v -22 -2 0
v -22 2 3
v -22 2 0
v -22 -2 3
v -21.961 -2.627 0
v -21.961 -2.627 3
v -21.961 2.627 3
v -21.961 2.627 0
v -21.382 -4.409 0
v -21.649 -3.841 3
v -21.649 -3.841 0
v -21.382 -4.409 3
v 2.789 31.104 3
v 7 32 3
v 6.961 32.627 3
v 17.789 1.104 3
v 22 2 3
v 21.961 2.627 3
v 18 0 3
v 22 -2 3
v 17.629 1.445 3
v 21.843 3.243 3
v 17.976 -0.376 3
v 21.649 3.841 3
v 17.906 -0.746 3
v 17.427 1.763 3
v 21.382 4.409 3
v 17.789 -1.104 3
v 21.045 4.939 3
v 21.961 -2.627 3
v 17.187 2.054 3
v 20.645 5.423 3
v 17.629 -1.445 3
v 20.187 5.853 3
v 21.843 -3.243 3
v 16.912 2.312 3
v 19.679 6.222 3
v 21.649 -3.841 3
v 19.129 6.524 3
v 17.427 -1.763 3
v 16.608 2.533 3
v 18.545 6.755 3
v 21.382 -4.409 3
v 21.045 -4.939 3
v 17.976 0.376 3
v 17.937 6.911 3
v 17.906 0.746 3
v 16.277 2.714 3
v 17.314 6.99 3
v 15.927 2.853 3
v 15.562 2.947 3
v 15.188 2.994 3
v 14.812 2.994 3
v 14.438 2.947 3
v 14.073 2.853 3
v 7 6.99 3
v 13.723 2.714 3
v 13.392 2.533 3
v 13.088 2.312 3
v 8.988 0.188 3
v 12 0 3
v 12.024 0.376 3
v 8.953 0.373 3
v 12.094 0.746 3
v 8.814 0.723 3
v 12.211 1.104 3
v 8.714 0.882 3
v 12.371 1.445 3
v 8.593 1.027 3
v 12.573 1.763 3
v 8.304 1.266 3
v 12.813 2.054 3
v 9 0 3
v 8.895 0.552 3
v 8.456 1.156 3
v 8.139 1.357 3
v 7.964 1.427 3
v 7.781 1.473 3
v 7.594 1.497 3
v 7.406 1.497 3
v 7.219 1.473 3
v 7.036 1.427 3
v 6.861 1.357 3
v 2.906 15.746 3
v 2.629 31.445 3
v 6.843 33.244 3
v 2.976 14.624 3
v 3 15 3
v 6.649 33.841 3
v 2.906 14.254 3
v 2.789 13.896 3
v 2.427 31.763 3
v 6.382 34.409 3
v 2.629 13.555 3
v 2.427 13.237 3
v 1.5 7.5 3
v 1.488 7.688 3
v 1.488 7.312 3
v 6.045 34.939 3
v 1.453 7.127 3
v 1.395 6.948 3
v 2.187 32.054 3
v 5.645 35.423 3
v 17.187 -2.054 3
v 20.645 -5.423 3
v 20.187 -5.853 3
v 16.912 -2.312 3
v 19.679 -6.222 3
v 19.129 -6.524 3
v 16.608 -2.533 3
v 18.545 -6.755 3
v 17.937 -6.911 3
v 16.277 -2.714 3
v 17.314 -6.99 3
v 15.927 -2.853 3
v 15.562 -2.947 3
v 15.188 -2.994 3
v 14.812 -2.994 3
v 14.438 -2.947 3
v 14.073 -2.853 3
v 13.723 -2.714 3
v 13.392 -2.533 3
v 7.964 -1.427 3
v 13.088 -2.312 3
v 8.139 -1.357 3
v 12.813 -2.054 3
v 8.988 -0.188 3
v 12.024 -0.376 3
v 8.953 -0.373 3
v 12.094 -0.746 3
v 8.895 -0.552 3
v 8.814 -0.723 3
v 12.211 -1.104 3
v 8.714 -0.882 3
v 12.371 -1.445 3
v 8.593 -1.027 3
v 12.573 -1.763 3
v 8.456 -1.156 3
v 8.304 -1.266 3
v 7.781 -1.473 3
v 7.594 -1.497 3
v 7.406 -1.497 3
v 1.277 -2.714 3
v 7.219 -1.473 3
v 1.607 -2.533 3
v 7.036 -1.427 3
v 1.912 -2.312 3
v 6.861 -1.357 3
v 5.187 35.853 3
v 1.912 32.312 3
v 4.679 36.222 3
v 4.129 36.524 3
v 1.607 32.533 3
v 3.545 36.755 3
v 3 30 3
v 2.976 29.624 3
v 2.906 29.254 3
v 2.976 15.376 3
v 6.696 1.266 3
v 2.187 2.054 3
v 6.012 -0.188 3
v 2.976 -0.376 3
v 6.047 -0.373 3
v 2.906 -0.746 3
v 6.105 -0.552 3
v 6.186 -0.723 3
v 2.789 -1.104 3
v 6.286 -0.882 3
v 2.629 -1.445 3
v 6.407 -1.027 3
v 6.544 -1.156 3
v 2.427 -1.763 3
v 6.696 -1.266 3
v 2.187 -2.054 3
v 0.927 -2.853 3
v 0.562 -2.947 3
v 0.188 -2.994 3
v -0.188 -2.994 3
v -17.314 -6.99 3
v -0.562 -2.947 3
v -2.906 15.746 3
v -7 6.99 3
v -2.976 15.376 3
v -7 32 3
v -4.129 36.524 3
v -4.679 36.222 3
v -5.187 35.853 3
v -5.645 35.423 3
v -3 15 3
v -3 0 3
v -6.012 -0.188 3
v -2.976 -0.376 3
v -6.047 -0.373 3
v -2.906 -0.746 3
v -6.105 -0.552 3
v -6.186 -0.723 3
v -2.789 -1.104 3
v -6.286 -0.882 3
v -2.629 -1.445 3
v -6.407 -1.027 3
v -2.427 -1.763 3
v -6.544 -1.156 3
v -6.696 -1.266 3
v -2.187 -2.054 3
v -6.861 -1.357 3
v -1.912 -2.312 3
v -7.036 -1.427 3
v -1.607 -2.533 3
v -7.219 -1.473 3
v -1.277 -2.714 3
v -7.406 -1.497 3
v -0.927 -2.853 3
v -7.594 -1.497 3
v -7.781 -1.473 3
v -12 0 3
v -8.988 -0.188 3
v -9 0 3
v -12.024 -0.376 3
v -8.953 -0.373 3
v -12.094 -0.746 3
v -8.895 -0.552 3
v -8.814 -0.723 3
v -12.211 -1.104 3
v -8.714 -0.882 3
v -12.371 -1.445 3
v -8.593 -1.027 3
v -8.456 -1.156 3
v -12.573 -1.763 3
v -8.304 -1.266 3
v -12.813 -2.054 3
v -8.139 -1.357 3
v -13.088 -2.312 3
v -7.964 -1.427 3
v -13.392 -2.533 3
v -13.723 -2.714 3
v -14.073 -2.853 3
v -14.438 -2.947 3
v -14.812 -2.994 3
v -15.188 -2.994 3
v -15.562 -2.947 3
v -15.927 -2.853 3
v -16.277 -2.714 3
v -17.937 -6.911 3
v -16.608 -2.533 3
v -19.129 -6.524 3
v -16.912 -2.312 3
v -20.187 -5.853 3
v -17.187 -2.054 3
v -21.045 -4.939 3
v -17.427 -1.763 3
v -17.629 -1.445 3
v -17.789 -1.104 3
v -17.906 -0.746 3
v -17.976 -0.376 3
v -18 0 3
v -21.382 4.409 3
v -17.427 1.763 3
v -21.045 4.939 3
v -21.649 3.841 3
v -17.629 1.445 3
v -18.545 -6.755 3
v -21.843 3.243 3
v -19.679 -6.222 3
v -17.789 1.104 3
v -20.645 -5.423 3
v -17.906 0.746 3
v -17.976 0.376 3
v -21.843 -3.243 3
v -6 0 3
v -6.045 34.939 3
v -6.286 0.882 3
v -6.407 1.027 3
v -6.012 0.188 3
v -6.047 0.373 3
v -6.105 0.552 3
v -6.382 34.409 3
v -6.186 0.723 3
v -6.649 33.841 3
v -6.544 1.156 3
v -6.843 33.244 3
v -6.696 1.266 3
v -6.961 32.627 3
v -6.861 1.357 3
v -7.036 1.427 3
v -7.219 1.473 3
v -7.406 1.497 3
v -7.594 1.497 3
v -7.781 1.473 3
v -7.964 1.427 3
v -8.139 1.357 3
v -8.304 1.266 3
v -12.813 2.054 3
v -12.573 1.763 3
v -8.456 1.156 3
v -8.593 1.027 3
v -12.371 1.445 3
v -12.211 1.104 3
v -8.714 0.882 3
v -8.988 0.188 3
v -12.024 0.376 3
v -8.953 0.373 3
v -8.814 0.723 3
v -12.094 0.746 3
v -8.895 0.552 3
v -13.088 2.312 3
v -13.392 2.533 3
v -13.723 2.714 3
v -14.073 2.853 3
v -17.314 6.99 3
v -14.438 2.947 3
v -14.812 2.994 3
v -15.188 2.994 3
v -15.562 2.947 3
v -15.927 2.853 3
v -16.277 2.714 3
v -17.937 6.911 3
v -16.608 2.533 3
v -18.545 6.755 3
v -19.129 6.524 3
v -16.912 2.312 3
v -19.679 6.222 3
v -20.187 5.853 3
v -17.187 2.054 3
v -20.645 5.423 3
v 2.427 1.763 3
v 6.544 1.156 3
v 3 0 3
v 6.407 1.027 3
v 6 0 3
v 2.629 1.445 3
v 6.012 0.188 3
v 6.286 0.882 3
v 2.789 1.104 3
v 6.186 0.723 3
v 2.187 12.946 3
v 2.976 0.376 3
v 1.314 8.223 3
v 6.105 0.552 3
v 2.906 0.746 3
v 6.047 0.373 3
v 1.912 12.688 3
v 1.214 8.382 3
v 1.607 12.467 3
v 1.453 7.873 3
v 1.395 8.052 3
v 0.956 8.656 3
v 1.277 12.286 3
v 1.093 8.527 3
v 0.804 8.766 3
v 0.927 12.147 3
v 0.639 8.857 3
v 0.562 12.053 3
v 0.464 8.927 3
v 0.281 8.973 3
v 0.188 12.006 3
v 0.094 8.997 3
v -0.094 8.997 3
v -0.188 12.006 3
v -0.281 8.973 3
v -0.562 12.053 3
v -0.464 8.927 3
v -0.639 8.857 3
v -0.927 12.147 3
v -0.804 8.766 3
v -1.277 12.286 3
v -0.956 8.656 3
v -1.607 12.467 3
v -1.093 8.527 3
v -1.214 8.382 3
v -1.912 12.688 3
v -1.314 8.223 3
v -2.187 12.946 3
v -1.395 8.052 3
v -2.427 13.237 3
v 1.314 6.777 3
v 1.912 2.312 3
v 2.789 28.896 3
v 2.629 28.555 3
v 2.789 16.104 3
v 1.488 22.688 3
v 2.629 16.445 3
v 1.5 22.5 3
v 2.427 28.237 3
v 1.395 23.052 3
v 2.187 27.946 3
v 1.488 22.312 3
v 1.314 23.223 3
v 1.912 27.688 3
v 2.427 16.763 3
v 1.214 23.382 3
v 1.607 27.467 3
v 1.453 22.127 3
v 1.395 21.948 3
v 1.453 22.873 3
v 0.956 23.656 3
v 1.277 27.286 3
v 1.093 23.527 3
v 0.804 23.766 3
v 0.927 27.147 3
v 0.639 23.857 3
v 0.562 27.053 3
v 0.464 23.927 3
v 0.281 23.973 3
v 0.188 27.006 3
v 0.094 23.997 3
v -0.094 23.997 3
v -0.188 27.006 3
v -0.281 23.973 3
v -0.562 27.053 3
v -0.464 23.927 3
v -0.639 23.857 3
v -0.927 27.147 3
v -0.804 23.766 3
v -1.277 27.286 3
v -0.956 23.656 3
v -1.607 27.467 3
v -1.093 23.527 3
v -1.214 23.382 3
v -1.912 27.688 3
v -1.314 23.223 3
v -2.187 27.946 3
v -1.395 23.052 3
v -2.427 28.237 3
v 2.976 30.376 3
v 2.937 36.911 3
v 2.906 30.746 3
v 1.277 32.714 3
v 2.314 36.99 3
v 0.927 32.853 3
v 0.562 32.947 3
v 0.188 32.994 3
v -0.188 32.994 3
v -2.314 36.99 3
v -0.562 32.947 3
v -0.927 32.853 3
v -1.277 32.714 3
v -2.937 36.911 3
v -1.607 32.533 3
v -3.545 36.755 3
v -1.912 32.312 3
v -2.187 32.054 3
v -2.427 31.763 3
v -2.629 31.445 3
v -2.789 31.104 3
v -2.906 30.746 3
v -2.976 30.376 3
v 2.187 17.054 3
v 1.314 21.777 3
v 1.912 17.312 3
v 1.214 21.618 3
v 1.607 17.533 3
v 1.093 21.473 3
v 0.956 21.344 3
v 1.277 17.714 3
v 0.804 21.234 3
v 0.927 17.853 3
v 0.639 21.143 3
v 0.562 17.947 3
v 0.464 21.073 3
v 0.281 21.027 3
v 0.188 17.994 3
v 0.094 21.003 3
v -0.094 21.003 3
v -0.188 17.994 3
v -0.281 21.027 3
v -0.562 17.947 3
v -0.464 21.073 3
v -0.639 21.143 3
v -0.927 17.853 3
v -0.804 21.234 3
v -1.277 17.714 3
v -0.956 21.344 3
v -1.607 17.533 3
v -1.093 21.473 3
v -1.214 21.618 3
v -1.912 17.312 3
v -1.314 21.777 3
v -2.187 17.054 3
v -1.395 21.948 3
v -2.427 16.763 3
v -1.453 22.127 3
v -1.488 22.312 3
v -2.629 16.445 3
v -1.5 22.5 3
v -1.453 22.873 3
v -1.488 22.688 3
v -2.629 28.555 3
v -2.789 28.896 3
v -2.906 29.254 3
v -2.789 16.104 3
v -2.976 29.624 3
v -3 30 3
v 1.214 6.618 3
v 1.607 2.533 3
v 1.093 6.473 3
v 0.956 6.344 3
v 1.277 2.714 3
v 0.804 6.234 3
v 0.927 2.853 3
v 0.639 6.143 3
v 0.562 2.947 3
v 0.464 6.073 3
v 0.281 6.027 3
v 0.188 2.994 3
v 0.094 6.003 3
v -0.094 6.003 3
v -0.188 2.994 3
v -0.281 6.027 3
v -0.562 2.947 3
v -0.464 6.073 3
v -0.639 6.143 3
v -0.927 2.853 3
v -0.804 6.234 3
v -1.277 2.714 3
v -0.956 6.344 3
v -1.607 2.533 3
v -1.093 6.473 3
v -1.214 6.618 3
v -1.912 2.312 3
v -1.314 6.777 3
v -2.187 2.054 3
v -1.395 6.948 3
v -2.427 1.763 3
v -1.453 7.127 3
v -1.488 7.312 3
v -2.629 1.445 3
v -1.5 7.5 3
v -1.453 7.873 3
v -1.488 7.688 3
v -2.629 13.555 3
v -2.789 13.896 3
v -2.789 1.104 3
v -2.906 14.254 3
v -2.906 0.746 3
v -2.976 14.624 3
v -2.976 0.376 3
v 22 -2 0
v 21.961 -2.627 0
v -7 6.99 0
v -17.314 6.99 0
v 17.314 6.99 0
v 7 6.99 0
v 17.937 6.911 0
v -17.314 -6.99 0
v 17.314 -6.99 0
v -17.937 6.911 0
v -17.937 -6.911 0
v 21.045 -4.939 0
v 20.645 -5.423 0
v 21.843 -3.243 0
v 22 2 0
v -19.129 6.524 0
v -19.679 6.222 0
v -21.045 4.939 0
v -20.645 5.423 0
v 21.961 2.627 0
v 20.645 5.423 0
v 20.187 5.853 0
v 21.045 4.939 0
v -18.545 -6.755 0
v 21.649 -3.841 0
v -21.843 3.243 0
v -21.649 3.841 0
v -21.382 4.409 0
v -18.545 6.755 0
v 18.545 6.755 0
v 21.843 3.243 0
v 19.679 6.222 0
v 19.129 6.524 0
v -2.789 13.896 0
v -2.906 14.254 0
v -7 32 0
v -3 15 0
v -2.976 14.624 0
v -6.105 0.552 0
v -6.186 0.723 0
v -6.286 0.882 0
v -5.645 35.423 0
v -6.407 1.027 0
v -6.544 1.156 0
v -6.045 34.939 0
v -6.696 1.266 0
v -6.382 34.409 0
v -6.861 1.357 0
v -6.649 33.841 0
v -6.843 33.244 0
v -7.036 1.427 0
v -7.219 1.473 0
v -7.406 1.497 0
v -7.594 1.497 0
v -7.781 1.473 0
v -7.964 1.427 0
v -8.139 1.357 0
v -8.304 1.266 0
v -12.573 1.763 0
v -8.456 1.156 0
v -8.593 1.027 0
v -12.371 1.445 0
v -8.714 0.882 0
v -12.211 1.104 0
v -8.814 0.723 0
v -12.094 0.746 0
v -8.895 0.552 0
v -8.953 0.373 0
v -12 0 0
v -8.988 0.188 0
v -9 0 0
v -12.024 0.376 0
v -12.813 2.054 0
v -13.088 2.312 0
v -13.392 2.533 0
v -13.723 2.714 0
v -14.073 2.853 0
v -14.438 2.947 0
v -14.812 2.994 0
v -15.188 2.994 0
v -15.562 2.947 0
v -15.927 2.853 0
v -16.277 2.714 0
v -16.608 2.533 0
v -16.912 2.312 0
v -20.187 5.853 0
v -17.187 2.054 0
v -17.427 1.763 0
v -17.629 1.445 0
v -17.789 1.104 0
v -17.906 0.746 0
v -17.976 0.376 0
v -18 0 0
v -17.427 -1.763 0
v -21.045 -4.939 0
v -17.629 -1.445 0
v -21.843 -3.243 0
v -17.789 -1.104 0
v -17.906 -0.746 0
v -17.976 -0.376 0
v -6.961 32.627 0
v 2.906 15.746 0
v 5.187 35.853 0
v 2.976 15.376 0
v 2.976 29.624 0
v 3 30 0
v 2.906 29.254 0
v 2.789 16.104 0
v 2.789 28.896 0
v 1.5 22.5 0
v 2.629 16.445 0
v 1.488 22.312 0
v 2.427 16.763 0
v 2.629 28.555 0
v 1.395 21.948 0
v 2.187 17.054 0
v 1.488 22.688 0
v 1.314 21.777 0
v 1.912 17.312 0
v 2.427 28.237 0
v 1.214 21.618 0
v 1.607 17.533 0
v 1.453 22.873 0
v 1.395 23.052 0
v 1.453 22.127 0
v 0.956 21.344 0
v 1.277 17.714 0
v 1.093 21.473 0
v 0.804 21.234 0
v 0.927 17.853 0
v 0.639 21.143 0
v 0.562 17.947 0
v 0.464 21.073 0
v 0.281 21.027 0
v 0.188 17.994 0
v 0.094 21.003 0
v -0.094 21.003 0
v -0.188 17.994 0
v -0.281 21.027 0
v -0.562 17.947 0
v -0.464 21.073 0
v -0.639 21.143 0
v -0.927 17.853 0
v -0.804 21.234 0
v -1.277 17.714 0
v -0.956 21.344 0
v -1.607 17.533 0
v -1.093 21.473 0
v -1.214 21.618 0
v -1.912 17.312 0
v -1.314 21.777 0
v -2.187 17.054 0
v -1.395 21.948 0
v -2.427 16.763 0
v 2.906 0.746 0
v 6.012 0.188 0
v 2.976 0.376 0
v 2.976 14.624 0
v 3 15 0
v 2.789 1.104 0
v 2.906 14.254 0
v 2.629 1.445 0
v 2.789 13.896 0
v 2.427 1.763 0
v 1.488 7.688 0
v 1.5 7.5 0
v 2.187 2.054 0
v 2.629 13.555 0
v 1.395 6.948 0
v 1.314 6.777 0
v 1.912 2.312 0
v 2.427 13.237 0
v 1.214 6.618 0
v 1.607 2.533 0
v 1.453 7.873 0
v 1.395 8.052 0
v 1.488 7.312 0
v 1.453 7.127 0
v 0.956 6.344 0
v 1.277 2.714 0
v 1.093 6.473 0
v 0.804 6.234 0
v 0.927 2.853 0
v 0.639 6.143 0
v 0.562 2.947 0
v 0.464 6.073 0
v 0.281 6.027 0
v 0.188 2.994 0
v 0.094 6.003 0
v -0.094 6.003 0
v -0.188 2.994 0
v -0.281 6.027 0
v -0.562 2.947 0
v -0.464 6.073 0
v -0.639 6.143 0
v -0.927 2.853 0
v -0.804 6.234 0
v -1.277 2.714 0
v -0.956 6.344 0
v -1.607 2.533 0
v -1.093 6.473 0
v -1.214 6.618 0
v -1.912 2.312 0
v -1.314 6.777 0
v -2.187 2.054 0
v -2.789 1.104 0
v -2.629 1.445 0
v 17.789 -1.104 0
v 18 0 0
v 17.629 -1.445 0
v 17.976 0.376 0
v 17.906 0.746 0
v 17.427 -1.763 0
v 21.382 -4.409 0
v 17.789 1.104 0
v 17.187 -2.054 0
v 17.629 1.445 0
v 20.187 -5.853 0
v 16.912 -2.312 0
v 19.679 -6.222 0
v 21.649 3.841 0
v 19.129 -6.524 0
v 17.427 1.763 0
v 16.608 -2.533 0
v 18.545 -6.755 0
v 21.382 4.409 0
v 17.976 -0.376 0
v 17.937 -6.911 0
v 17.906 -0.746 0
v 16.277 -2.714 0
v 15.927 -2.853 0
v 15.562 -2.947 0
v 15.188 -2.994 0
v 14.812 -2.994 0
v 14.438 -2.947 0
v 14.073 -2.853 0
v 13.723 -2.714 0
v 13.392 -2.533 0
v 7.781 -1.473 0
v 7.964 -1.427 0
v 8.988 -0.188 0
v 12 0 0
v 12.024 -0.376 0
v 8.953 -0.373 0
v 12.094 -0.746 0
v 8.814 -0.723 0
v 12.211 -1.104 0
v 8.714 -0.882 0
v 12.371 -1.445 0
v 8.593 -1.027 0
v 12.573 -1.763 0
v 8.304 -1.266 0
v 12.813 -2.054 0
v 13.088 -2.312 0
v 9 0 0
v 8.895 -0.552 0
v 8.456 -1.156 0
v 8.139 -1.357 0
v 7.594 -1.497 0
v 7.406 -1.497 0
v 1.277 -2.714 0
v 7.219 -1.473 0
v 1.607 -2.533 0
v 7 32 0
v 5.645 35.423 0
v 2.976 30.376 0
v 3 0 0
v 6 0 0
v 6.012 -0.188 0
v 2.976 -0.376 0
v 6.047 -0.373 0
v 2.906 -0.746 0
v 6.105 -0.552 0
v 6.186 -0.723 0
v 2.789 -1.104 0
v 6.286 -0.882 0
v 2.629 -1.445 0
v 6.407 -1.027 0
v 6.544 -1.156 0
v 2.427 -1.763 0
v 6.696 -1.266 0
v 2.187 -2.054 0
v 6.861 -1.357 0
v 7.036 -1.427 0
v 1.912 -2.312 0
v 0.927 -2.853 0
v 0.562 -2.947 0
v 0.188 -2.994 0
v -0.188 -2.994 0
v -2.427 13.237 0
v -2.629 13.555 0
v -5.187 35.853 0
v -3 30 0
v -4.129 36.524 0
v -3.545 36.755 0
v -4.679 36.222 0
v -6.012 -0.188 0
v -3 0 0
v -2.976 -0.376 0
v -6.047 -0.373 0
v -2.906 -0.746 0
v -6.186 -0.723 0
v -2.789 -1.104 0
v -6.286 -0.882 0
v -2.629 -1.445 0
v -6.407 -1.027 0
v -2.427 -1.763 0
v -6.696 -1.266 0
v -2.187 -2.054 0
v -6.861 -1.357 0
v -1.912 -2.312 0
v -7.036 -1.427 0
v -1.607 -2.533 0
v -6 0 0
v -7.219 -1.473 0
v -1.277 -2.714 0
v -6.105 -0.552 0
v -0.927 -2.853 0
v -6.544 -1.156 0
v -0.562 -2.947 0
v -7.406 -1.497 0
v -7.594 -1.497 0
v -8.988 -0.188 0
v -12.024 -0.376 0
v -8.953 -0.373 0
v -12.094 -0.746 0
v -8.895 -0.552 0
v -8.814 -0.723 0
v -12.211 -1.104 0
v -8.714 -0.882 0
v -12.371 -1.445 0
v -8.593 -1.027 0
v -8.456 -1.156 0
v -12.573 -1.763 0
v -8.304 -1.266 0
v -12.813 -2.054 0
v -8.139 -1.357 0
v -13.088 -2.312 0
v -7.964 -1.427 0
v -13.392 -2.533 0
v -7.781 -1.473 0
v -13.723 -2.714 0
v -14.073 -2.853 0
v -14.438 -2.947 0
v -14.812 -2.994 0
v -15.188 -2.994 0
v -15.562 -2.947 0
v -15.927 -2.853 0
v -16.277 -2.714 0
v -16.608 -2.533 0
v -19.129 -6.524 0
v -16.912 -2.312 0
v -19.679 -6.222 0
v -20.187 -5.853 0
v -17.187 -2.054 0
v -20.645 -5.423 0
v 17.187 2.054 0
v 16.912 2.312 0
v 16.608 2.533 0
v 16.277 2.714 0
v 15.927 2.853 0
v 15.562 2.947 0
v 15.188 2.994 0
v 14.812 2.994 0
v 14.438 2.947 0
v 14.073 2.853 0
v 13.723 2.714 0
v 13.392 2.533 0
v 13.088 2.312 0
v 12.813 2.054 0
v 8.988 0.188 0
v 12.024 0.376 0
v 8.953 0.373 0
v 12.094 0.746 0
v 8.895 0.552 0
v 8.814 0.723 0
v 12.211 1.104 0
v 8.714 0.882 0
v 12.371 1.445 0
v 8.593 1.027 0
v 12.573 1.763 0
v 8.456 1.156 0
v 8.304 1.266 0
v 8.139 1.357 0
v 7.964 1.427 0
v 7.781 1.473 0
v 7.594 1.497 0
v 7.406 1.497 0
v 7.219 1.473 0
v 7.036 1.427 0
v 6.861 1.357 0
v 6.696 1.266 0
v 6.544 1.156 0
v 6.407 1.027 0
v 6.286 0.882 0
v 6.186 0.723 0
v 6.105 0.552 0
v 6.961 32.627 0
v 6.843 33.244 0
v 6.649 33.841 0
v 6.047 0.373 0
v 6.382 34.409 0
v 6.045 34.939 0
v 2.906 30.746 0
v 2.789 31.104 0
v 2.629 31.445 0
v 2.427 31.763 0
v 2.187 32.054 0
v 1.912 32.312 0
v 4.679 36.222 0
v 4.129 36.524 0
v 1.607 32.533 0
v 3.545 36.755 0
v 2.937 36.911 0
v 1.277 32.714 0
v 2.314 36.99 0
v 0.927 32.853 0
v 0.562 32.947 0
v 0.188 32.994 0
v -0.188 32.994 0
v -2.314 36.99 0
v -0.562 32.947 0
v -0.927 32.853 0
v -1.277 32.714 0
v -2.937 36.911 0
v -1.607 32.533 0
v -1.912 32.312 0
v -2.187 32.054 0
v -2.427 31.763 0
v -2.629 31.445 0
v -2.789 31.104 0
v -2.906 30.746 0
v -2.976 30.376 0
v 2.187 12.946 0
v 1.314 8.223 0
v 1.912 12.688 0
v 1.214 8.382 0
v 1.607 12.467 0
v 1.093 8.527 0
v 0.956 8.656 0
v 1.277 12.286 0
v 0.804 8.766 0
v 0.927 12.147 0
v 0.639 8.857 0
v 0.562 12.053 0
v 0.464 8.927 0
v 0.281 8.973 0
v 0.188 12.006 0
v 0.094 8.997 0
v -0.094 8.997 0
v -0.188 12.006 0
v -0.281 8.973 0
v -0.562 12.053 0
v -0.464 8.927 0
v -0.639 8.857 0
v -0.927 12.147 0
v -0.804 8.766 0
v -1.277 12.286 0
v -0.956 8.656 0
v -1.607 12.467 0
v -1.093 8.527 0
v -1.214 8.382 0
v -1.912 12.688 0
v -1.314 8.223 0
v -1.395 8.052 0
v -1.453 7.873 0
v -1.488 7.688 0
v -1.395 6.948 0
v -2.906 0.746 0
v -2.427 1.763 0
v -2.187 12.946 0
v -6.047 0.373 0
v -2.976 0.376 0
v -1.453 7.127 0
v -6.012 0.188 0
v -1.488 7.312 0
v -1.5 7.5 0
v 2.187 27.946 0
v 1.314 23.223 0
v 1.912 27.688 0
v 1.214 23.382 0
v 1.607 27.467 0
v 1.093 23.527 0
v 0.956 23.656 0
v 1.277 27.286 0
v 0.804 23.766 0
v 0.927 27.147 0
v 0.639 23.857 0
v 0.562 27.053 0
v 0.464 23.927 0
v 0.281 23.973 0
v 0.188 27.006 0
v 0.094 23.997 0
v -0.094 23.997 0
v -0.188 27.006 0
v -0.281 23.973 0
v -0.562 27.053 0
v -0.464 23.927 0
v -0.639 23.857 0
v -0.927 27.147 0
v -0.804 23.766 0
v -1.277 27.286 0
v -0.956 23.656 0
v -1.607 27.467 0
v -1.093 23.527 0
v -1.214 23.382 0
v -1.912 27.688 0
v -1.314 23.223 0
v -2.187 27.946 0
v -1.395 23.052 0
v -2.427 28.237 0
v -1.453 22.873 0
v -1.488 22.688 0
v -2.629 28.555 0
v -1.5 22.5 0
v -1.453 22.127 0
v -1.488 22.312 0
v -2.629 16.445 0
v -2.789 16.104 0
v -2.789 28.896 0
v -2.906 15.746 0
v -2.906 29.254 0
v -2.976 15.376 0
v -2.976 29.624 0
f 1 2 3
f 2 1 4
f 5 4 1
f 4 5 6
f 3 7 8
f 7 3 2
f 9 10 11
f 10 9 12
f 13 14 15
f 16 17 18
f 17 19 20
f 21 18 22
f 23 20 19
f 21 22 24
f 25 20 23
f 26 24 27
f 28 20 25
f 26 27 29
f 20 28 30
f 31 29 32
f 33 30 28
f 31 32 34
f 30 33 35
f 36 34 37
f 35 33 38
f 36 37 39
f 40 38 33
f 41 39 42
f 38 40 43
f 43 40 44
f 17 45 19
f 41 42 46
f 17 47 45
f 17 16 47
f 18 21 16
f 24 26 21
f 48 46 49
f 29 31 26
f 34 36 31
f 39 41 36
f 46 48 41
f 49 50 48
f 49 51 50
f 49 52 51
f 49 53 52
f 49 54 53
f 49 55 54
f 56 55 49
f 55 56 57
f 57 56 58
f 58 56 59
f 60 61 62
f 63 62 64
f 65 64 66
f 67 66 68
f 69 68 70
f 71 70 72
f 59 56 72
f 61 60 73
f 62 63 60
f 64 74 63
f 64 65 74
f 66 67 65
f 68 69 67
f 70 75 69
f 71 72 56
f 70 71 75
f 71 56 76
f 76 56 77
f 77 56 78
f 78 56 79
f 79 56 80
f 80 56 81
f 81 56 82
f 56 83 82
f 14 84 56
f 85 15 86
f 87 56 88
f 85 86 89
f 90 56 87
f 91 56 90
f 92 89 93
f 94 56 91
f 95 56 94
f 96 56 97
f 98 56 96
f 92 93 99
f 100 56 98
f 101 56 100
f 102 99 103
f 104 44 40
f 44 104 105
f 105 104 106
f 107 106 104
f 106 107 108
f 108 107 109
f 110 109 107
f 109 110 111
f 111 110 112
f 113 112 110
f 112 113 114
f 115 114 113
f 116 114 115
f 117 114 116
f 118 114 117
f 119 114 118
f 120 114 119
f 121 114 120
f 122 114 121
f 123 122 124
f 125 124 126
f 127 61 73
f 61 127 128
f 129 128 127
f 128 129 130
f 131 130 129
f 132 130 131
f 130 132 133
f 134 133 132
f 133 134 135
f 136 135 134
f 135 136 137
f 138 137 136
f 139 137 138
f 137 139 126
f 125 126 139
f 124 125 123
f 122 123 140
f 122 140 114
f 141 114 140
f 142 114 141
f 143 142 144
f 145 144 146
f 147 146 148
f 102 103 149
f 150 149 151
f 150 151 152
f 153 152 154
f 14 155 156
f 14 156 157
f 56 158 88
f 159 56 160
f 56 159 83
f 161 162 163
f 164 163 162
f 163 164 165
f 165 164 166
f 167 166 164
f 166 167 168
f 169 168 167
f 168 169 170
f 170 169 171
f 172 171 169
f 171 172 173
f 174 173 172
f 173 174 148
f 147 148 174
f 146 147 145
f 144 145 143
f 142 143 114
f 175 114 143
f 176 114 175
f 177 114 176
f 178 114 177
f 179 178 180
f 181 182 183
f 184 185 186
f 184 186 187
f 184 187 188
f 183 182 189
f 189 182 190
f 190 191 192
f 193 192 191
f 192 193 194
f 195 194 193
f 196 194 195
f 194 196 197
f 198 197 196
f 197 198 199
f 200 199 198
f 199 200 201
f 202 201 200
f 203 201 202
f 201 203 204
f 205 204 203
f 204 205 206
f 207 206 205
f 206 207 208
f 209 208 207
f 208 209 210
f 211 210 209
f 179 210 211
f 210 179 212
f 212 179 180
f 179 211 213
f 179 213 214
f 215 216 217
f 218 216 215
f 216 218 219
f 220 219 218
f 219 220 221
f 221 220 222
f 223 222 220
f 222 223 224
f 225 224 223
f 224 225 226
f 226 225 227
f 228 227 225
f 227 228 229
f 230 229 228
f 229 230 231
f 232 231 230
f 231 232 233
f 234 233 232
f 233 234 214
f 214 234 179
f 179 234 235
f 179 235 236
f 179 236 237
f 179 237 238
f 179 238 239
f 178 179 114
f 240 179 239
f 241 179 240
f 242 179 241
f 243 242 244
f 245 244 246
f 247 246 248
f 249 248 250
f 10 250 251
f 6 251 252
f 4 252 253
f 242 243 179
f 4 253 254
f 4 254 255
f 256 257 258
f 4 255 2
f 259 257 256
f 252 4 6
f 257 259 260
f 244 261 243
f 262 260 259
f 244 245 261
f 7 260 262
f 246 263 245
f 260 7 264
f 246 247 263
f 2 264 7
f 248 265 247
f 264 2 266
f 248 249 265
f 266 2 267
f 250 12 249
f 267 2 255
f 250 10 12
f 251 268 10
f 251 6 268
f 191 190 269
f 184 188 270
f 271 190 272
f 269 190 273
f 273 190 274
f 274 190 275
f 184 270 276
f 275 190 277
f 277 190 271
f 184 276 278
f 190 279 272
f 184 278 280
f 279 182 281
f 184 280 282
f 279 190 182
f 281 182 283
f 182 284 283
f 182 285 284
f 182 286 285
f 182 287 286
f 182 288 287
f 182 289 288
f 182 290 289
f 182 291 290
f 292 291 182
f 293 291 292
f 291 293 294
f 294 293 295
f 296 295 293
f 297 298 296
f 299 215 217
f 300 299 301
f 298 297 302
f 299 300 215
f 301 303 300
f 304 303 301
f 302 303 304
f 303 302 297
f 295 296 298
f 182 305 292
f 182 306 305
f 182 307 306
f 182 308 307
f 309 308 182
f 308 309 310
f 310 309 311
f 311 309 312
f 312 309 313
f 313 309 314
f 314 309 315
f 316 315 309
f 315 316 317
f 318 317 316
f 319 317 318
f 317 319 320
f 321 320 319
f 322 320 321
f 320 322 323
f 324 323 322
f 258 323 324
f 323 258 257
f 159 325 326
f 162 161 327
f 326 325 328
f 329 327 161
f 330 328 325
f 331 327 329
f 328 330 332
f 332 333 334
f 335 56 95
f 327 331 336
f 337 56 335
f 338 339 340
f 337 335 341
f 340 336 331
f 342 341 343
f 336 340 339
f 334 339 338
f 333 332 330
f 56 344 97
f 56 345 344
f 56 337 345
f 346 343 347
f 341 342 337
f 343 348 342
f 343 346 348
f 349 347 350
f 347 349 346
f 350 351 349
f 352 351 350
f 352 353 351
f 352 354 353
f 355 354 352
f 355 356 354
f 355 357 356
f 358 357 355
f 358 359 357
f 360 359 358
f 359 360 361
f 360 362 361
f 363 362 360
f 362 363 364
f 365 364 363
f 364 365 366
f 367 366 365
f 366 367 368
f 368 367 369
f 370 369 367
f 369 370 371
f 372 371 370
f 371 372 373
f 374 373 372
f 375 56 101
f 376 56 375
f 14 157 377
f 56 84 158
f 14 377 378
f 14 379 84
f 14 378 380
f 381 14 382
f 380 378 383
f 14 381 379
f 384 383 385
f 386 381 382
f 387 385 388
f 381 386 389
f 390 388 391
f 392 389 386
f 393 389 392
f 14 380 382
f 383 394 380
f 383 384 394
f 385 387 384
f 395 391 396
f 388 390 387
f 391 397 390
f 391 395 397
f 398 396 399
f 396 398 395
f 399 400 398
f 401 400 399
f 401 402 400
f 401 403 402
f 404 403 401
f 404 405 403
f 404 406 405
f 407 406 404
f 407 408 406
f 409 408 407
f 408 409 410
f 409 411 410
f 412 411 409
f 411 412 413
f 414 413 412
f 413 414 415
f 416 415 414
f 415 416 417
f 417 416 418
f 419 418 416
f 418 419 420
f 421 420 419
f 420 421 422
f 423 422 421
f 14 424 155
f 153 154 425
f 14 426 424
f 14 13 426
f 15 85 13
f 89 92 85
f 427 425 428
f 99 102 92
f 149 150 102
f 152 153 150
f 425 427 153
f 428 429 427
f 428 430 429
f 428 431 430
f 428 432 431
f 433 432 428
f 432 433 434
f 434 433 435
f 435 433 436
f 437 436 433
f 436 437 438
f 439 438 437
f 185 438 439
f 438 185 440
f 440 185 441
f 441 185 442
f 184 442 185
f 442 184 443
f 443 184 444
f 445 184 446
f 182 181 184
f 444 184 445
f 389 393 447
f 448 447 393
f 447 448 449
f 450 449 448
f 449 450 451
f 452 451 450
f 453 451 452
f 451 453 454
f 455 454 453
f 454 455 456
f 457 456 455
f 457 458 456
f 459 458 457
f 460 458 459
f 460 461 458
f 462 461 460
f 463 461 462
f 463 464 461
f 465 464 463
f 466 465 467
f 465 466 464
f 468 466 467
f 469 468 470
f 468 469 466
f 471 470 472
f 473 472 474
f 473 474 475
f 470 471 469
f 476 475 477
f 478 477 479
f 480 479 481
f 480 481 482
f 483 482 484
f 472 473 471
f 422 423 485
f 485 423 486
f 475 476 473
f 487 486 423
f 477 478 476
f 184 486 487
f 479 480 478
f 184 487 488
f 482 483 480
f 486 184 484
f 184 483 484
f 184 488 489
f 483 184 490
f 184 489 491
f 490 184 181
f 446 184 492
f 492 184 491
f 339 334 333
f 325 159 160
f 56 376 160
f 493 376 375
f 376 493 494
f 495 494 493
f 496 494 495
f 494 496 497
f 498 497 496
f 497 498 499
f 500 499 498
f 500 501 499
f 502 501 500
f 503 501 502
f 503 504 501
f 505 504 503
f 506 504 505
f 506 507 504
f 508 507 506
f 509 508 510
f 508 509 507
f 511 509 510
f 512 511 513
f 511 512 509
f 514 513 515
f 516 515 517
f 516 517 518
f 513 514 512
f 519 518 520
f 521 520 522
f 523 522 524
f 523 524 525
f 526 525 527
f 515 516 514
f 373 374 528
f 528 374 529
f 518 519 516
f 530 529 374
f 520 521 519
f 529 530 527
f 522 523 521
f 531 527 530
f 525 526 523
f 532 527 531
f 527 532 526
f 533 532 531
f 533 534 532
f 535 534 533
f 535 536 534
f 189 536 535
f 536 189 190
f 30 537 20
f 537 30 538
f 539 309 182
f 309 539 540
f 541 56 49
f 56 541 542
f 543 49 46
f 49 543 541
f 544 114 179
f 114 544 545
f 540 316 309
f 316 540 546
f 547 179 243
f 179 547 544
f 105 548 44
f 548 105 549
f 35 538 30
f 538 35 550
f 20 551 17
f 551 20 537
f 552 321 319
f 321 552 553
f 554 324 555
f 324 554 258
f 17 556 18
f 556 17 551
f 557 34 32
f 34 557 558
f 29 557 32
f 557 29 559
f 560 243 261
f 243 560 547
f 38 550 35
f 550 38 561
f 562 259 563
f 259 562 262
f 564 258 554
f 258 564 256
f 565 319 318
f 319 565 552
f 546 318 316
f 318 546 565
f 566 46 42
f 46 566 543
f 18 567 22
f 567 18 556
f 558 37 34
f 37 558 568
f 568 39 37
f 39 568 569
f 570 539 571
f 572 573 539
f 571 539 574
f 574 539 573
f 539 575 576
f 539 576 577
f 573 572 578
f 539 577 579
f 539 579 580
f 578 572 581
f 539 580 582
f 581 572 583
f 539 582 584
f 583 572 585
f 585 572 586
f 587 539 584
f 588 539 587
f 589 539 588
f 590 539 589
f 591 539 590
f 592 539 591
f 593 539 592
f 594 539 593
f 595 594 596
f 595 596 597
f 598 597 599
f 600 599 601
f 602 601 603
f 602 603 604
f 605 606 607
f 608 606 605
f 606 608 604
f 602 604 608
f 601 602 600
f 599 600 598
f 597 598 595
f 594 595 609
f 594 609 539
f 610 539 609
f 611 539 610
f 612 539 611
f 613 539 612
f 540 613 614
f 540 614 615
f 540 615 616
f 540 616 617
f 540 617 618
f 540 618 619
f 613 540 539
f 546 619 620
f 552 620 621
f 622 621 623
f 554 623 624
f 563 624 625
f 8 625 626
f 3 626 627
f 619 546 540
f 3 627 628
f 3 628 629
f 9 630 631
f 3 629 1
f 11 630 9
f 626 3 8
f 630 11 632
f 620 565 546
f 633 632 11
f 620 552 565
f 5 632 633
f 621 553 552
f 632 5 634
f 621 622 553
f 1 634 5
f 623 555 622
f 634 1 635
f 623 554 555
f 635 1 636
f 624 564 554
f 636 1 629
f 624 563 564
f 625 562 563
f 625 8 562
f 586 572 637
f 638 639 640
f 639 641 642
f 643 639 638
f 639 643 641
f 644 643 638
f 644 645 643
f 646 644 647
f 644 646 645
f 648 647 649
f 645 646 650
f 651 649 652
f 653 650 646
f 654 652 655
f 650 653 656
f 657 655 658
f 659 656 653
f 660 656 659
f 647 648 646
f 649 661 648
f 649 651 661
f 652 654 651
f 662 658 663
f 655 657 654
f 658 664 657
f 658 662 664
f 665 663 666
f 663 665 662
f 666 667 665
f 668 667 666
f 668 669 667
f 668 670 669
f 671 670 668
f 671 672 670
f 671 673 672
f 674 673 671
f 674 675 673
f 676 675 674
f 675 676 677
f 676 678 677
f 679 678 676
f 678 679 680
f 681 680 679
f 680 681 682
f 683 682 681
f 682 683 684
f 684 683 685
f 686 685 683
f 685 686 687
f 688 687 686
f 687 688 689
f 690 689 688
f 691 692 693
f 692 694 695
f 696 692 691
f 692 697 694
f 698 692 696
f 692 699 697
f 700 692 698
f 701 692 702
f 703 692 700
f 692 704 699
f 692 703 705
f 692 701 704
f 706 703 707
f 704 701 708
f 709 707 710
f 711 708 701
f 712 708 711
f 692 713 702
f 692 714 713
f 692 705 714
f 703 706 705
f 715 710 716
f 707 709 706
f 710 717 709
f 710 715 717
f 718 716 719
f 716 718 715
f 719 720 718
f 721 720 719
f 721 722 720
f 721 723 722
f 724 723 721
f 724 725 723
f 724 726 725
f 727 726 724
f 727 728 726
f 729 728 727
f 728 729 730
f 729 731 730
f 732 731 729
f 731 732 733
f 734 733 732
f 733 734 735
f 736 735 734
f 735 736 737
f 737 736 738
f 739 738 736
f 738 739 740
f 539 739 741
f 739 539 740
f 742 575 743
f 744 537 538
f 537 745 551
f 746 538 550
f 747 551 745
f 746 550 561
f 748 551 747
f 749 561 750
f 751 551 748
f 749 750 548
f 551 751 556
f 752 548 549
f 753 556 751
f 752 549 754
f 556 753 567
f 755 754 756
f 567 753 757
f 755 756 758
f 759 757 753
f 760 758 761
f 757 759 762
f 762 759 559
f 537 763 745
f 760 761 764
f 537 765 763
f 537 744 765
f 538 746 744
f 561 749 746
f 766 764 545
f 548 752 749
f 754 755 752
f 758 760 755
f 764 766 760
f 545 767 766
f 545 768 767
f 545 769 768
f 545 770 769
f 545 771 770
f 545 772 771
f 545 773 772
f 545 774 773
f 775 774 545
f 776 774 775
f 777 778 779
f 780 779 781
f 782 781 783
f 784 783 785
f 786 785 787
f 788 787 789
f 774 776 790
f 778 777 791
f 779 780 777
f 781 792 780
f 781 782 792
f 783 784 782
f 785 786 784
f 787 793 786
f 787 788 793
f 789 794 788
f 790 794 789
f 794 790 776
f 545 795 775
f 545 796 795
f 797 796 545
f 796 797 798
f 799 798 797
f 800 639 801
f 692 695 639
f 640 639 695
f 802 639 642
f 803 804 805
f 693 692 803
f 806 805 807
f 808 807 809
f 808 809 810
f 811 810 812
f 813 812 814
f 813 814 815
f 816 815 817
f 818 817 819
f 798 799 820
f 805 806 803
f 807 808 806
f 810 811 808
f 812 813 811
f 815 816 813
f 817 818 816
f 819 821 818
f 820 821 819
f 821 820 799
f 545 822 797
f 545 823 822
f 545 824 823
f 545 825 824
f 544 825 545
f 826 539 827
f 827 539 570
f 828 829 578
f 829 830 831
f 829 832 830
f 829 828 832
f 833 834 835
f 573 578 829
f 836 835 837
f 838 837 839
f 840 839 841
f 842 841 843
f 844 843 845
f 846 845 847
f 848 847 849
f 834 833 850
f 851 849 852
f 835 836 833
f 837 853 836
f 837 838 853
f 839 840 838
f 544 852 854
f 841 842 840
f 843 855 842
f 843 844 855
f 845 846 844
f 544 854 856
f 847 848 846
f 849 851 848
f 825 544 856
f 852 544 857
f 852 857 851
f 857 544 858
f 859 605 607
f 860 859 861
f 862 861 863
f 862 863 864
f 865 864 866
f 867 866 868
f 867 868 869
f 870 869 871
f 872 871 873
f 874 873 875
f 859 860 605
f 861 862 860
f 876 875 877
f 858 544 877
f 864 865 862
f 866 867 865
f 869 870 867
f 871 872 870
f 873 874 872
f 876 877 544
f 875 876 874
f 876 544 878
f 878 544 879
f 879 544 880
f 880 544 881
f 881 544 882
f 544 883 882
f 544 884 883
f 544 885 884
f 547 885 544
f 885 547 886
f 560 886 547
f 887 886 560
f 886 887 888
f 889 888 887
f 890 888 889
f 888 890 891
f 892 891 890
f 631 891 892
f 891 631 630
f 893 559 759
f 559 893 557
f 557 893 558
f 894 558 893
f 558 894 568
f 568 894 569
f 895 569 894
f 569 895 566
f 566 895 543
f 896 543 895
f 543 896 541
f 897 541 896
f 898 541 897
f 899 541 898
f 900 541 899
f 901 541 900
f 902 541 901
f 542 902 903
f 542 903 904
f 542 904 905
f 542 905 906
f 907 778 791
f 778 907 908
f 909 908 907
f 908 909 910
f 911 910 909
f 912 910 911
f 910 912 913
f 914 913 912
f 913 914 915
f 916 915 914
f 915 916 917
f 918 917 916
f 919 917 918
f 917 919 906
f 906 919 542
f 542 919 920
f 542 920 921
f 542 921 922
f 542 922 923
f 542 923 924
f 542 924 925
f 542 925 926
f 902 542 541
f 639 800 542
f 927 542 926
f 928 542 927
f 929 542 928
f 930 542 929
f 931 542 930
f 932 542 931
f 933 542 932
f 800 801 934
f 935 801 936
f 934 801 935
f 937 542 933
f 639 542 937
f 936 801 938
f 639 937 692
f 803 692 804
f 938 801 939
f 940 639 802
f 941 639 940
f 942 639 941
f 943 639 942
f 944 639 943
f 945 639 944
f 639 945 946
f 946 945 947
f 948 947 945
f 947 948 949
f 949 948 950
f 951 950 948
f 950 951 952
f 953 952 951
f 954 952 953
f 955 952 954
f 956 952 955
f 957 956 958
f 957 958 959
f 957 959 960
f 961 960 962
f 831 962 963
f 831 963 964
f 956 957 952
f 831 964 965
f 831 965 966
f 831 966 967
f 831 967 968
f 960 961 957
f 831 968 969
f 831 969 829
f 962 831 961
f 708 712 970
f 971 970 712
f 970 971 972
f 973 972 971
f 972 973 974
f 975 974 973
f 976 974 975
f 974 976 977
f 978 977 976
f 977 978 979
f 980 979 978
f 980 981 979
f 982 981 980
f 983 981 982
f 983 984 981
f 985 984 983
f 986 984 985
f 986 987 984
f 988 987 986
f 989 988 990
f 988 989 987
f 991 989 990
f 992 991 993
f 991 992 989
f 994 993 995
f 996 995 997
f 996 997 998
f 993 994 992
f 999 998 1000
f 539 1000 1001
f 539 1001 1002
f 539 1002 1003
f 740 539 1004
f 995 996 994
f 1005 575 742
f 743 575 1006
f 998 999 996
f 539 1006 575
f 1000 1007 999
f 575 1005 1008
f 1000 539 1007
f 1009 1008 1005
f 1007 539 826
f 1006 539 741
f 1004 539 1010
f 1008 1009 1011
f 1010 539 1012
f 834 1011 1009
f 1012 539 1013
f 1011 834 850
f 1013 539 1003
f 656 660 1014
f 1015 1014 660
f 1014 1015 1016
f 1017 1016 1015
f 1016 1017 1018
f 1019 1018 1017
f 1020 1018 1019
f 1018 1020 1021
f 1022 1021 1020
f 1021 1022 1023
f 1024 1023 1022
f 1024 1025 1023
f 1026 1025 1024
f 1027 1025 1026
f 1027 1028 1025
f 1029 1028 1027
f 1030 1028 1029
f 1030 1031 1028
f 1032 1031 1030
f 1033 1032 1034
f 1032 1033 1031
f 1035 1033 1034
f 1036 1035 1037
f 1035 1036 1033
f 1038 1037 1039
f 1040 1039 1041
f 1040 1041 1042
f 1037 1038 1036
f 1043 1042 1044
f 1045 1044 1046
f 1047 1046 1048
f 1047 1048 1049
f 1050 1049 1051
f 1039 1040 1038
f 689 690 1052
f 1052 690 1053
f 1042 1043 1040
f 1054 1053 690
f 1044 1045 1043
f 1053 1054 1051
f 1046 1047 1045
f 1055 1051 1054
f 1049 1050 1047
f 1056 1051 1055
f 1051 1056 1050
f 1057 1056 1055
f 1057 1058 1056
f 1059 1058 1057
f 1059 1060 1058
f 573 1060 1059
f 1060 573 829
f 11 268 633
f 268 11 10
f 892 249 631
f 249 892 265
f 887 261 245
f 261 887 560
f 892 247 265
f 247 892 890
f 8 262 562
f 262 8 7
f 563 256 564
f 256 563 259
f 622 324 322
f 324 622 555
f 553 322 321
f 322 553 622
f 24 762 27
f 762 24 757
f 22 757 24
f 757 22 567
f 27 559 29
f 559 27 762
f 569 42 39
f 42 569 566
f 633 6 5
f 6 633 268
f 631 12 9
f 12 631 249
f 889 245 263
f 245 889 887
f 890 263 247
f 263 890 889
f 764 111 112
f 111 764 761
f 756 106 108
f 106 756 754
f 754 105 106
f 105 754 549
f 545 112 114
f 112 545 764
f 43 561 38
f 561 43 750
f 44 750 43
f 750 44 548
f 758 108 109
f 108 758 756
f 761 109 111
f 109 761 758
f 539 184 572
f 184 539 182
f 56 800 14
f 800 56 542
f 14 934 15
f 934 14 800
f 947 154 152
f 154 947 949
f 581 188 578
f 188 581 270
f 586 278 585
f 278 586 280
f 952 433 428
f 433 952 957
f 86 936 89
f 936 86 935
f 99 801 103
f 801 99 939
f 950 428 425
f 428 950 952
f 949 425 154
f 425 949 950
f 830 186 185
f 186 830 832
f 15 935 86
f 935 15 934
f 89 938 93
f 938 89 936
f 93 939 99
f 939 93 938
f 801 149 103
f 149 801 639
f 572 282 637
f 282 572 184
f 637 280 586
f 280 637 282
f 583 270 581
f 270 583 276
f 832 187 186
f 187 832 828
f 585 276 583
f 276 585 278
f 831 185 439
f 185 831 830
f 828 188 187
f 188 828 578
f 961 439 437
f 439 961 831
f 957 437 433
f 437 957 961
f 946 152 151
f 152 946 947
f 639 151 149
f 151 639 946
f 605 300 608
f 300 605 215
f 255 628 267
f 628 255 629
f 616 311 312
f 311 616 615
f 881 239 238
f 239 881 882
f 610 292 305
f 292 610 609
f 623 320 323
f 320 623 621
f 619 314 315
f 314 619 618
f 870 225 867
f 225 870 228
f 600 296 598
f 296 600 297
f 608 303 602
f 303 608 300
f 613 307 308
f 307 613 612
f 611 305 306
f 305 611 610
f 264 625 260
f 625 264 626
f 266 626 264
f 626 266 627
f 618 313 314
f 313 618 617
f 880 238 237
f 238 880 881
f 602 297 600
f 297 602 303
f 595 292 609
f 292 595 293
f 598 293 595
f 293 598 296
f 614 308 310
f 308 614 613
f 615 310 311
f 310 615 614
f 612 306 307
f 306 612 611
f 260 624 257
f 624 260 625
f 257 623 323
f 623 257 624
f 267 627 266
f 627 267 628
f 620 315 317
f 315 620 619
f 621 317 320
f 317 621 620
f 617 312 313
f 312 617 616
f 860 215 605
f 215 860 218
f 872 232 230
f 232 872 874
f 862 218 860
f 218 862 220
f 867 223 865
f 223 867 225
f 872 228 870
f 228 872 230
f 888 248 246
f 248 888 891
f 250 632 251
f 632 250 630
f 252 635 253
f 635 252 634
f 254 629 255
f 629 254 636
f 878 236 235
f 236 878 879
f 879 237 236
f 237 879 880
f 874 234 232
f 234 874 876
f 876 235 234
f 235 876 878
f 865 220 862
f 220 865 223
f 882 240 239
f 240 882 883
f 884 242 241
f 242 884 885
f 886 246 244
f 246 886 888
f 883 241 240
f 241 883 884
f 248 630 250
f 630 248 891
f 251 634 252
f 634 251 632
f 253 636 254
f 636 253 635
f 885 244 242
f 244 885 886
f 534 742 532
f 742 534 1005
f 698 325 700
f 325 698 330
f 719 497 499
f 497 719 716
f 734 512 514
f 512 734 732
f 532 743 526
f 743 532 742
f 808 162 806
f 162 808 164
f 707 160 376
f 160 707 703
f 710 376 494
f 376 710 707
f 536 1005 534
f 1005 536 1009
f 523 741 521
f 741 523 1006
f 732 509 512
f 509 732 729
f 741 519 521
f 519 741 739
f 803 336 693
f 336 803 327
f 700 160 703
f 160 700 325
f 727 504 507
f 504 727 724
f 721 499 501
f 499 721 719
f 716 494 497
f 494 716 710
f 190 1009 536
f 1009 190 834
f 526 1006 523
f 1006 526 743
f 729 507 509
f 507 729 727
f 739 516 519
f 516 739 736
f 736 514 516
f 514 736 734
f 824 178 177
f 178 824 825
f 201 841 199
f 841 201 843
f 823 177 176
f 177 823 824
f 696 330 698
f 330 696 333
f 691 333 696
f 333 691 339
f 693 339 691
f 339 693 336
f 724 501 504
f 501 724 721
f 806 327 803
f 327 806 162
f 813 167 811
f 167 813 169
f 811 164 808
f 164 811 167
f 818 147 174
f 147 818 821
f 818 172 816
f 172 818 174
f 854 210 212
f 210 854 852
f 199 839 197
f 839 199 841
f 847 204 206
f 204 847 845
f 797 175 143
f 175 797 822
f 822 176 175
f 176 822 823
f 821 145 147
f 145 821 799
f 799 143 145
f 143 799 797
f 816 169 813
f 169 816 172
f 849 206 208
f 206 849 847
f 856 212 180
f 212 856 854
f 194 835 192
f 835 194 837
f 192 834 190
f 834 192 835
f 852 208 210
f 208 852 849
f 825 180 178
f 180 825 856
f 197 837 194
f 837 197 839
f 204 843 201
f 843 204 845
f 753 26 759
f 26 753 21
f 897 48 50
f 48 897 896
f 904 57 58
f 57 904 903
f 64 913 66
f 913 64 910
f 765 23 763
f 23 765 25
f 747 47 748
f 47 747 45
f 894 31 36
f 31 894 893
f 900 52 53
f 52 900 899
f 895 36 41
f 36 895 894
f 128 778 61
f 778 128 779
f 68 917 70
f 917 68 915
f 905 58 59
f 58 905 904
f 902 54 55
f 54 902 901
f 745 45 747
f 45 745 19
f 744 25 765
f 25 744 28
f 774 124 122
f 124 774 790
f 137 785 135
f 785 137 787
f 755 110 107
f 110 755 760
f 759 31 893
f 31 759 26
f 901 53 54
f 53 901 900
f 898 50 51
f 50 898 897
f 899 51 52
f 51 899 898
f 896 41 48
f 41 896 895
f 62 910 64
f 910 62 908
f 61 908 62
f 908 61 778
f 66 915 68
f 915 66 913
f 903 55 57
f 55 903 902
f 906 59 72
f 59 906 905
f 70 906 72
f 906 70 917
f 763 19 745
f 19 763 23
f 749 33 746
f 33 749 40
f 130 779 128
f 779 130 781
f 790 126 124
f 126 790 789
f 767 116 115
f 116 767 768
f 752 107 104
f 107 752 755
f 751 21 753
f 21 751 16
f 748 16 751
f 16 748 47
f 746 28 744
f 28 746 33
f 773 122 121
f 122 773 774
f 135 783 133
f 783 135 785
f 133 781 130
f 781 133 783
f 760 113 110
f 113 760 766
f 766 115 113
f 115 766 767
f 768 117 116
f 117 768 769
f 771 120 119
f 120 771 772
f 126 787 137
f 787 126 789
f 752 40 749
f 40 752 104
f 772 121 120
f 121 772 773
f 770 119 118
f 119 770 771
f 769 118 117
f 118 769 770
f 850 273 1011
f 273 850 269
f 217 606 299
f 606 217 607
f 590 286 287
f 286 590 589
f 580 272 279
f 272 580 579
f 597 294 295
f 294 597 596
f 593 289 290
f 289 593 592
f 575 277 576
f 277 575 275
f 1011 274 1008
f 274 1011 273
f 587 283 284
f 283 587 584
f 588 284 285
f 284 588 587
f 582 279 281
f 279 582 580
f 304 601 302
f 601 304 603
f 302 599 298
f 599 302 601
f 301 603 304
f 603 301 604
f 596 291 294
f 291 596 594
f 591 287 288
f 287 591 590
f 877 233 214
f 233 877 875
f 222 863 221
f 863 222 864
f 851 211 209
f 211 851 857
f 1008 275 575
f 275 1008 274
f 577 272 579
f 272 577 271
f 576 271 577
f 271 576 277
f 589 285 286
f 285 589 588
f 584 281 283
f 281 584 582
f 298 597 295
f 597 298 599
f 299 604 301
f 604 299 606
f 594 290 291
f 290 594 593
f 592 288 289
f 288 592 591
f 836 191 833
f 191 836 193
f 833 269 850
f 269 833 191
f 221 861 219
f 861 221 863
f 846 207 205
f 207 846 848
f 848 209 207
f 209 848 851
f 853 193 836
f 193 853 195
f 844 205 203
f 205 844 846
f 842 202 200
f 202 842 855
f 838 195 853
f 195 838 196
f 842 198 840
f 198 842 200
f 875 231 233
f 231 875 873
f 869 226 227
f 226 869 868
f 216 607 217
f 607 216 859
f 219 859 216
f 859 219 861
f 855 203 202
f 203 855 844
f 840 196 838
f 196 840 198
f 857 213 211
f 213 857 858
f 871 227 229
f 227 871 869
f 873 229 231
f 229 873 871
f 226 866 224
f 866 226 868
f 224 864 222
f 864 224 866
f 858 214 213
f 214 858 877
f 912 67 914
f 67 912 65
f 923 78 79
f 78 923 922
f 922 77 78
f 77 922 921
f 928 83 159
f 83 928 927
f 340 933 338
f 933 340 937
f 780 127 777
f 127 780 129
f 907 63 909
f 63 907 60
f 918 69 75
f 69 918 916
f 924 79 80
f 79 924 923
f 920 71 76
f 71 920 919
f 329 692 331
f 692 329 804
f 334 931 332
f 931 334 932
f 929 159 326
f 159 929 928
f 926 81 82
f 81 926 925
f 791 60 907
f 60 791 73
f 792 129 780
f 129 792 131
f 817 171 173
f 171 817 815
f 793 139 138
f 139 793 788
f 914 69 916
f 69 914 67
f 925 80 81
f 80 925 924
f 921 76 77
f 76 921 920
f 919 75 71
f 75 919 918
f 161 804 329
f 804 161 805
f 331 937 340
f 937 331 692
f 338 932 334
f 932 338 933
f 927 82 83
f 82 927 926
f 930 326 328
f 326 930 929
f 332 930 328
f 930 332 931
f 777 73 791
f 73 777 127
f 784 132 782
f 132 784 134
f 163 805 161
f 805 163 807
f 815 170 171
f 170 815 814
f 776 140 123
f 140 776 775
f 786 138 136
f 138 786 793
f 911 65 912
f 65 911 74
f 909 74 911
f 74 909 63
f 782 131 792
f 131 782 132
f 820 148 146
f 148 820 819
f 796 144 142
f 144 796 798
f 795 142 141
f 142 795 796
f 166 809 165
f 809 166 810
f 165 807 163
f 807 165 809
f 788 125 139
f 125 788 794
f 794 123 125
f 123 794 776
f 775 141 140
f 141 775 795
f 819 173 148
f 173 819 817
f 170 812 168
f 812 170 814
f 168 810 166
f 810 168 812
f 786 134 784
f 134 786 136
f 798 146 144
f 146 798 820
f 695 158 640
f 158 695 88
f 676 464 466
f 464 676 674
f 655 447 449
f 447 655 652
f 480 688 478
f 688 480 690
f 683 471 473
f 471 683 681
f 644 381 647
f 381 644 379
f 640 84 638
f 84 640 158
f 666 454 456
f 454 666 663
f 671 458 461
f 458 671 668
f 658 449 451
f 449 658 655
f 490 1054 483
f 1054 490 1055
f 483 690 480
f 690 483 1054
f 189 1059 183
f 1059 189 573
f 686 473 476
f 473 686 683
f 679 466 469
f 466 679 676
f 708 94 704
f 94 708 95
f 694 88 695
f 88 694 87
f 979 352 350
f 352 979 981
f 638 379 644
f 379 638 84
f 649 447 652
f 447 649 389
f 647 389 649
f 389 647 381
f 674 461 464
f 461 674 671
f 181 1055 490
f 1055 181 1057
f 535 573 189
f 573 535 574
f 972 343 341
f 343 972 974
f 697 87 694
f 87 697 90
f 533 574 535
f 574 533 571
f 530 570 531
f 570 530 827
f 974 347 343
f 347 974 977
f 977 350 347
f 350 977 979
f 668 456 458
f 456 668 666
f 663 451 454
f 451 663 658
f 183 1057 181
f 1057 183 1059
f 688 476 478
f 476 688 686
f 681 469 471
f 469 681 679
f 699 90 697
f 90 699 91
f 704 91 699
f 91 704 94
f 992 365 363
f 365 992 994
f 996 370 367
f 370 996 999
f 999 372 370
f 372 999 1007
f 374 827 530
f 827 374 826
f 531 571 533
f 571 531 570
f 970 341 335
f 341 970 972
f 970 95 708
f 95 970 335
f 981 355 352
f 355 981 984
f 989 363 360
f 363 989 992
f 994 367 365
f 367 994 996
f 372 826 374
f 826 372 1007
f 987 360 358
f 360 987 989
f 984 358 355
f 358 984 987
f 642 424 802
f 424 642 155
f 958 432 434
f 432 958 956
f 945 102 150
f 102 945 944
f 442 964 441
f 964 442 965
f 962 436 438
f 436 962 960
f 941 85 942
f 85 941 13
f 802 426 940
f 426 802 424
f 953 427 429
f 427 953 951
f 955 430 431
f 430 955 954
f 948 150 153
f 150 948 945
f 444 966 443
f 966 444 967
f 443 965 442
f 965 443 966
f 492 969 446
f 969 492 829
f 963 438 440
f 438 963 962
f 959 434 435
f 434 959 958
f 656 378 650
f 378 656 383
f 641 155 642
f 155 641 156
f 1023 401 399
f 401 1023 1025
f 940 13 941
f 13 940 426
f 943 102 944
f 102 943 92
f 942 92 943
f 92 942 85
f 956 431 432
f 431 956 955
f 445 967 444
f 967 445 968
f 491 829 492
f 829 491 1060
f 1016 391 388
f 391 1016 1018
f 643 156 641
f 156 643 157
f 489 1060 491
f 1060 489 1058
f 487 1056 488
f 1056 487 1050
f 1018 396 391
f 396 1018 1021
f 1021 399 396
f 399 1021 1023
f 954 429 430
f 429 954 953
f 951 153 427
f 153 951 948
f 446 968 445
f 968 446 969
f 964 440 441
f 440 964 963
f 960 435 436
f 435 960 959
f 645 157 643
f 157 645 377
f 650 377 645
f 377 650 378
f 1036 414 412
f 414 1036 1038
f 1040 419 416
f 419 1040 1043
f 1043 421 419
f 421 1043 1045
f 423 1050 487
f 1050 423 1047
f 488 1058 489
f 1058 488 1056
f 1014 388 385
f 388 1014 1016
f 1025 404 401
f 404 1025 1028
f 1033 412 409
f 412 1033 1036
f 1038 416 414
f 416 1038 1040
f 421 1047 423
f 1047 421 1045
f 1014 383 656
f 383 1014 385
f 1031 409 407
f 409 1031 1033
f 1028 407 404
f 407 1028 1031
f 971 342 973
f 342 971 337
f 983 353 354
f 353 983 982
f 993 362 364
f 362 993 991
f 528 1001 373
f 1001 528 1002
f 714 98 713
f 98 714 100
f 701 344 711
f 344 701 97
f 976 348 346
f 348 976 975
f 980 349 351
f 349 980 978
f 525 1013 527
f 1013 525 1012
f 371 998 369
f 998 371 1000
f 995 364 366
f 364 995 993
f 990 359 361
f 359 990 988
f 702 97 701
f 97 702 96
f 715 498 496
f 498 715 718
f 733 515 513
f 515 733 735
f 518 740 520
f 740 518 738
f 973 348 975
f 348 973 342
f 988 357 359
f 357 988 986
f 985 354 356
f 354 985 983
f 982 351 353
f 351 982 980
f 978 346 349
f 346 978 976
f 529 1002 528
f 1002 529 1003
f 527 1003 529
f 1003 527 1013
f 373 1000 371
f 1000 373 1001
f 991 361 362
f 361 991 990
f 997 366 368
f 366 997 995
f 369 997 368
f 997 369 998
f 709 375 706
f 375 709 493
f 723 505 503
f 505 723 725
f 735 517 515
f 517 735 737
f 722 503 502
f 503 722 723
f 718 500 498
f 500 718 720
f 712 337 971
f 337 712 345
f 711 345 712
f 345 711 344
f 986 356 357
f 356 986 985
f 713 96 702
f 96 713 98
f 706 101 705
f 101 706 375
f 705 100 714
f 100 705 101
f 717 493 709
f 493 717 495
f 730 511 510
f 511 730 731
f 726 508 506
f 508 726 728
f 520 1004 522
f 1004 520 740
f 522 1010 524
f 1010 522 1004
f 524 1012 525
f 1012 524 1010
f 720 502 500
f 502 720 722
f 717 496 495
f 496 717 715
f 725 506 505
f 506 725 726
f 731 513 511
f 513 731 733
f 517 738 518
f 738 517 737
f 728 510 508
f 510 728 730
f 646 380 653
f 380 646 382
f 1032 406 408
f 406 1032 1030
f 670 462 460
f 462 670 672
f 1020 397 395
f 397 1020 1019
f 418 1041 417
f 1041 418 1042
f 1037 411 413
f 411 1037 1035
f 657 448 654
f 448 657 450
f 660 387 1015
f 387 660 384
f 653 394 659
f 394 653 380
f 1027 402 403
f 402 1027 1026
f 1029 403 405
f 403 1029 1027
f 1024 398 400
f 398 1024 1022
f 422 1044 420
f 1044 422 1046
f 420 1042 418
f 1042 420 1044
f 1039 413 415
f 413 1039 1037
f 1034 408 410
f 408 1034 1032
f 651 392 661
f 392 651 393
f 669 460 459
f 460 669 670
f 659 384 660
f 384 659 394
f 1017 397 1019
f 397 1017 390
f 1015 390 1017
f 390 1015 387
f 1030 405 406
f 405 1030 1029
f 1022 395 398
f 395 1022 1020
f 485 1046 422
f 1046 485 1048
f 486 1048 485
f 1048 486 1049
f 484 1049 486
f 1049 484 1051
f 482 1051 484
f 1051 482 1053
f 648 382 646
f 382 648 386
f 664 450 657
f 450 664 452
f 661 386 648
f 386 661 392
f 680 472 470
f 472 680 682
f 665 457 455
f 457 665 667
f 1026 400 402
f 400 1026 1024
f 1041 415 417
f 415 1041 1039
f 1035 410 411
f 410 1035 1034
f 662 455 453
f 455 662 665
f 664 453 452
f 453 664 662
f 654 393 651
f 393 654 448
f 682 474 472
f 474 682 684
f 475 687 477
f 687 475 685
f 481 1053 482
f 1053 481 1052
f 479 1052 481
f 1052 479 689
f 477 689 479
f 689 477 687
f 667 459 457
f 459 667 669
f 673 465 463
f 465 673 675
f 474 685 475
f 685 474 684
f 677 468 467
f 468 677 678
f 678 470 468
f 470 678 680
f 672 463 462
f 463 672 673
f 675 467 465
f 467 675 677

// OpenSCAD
$fn = 50;


difference() {
	union() {
		*color(alpha = 1.0000000000, c = "gray") {
			translate(v = [0, 7, 0]) {
				linear_extrude(height = 1) {
					text(font = "Arial:style=Bold", halign = "center", size = 4.5000000000, text = "COMMENT plate main", valign = "center");
				}
			}
		}
		hull() {
			translate(v = [-17.0000000000, 2.0000000000, 0]) {
				cylinder(h = 3, r = 5);
			}
			translate(v = [17.0000000000, 2.0000000000, 0]) {
				cylinder(h = 3, r = 5);
			}
			translate(v = [-17.0000000000, -2.0000000000, 0]) {
				cylinder(h = 3, r = 5);
			}
			translate(v = [17.0000000000, -2.0000000000, 0]) {
				cylinder(h = 3, r = 5);
			}
		}
		*color(alpha = 1.0000000000, c = "gray") {
			translate(v = [0, 7, 0]) {
				linear_extrude(height = 1) {
					text(font = "Arial:style=Bold", halign = "center", size = 4.5000000000, text = "COMMENT plate main", valign = "center");
				}
			}
		}
		translate(v = [0, 15.0000000000, 0]) {
			hull() {
				translate(v = [-2.0000000000, 17.0000000000, 0]) {
					cylinder(h = 3, r = 5);
				}
				translate(v = [2.0000000000, 17.0000000000, 0]) {
					cylinder(h = 3, r = 5);
				}
				translate(v = [-2.0000000000, -17.0000000000, 0]) {
					cylinder(h = 3, r = 5);
				}
				translate(v = [2.0000000000, -17.0000000000, 0]) {
					cylinder(h = 3, r = 5);
				}
			}
		}
	}
	union() {
		*color(alpha = 1.0000000000, c = "gray") {
			translate(v = [0, 7, 0]) {
				linear_extrude(height = 1) {
					text(font = "Arial:style=Bold", halign = "center", size = 4.5000000000, text = "COMMENT holes main", valign = "center");
				}
			}
		}
		translate(v = [-15.0000000000, 0.0000000000, 0]) {
			translate(v = [0, 0, -50]) {
				cylinder(h = 100, r = 3.0000000000);
			}
		}
		translate(v = [0, 0, -50]) {
			cylinder(h = 100, r = 3.0000000000);
		}
		translate(v = [15.0000000000, 0.0000000000, 0]) {
			translate(v = [0, 0, -50]) {
				cylinder(h = 100, r = 3.0000000000);
			}
		}
		translate(v = [-15.0000000000, 0.0000000000, 0]) {
			translate(v = [0, 0, -50]) {
				cylinder(h = 100, r = 1.5000000000);
			}
		}
		translate(v = [-7.5000000000, 0.0000000000, 0]) {
			translate(v = [0, 0, -50]) {
				cylinder(h = 100, r = 1.5000000000);
			}
		}
		translate(v = [0, 0, -50]) {
			cylinder(h = 100, r = 1.5000000000);
		}
		translate(v = [7.5000000000, 0.0000000000, 0]) {
			translate(v = [0, 0, -50]) {
				cylinder(h = 100, r = 1.5000000000);
			}
		}
		translate(v = [15.0000000000, 0.0000000000, 0]) {
			translate(v = [0, 0, -50]) {
				cylinder(h = 100, r = 1.5000000000);
			}
		}
		*color(alpha = 1.0000000000, c = "gray") {
			translate(v = [0, 7, 0]) {
				linear_extrude(height = 1) {
					text(font = "Arial:style=Bold", halign = "center", size = 4.5000000000, text = "COMMENT holes main", valign = "center");
				}
			}
		}
		translate(v = [0, 0, -50]) {
			cylinder(h = 100, r = 3.0000000000);
		}
		translate(v = [0.0000000000, 15.0000000000, 0]) {
			translate(v = [0, 0, -50]) {
				cylinder(h = 100, r = 3.0000000000);
			}
		}
		translate(v = [0.0000000000, 30.0000000000, 0]) {
			translate(v = [0, 0, -50]) {
				cylinder(h = 100, r = 3.0000000000);
			}
		}
		translate(v = [0, 0, -50]) {
			cylinder(h = 100, r = 1.5000000000);
		}
		translate(v = [0.0000000000, 7.5000000000, 0]) {
			translate(v = [0, 0, -50]) {
				cylinder(h = 100, r = 1.5000000000);
			}
		}
		translate(v = [0.0000000000, 15.0000000000, 0]) {
			translate(v = [0, 0, -50]) {
				cylinder(h = 100, r = 1.5000000000);
			}
		}
		translate(v = [0.0000000000, 22.5000000000, 0]) {
			translate(v = [0, 0, -50]) {
				cylinder(h = 100, r = 1.5000000000);
			}
		}
		translate(v = [0.0000000000, 30.0000000000, 0]) {
			translate(v = [0, 0, -50]) {
				cylinder(h = 100, r = 1.5000000000);
			}
		}
	}
}
